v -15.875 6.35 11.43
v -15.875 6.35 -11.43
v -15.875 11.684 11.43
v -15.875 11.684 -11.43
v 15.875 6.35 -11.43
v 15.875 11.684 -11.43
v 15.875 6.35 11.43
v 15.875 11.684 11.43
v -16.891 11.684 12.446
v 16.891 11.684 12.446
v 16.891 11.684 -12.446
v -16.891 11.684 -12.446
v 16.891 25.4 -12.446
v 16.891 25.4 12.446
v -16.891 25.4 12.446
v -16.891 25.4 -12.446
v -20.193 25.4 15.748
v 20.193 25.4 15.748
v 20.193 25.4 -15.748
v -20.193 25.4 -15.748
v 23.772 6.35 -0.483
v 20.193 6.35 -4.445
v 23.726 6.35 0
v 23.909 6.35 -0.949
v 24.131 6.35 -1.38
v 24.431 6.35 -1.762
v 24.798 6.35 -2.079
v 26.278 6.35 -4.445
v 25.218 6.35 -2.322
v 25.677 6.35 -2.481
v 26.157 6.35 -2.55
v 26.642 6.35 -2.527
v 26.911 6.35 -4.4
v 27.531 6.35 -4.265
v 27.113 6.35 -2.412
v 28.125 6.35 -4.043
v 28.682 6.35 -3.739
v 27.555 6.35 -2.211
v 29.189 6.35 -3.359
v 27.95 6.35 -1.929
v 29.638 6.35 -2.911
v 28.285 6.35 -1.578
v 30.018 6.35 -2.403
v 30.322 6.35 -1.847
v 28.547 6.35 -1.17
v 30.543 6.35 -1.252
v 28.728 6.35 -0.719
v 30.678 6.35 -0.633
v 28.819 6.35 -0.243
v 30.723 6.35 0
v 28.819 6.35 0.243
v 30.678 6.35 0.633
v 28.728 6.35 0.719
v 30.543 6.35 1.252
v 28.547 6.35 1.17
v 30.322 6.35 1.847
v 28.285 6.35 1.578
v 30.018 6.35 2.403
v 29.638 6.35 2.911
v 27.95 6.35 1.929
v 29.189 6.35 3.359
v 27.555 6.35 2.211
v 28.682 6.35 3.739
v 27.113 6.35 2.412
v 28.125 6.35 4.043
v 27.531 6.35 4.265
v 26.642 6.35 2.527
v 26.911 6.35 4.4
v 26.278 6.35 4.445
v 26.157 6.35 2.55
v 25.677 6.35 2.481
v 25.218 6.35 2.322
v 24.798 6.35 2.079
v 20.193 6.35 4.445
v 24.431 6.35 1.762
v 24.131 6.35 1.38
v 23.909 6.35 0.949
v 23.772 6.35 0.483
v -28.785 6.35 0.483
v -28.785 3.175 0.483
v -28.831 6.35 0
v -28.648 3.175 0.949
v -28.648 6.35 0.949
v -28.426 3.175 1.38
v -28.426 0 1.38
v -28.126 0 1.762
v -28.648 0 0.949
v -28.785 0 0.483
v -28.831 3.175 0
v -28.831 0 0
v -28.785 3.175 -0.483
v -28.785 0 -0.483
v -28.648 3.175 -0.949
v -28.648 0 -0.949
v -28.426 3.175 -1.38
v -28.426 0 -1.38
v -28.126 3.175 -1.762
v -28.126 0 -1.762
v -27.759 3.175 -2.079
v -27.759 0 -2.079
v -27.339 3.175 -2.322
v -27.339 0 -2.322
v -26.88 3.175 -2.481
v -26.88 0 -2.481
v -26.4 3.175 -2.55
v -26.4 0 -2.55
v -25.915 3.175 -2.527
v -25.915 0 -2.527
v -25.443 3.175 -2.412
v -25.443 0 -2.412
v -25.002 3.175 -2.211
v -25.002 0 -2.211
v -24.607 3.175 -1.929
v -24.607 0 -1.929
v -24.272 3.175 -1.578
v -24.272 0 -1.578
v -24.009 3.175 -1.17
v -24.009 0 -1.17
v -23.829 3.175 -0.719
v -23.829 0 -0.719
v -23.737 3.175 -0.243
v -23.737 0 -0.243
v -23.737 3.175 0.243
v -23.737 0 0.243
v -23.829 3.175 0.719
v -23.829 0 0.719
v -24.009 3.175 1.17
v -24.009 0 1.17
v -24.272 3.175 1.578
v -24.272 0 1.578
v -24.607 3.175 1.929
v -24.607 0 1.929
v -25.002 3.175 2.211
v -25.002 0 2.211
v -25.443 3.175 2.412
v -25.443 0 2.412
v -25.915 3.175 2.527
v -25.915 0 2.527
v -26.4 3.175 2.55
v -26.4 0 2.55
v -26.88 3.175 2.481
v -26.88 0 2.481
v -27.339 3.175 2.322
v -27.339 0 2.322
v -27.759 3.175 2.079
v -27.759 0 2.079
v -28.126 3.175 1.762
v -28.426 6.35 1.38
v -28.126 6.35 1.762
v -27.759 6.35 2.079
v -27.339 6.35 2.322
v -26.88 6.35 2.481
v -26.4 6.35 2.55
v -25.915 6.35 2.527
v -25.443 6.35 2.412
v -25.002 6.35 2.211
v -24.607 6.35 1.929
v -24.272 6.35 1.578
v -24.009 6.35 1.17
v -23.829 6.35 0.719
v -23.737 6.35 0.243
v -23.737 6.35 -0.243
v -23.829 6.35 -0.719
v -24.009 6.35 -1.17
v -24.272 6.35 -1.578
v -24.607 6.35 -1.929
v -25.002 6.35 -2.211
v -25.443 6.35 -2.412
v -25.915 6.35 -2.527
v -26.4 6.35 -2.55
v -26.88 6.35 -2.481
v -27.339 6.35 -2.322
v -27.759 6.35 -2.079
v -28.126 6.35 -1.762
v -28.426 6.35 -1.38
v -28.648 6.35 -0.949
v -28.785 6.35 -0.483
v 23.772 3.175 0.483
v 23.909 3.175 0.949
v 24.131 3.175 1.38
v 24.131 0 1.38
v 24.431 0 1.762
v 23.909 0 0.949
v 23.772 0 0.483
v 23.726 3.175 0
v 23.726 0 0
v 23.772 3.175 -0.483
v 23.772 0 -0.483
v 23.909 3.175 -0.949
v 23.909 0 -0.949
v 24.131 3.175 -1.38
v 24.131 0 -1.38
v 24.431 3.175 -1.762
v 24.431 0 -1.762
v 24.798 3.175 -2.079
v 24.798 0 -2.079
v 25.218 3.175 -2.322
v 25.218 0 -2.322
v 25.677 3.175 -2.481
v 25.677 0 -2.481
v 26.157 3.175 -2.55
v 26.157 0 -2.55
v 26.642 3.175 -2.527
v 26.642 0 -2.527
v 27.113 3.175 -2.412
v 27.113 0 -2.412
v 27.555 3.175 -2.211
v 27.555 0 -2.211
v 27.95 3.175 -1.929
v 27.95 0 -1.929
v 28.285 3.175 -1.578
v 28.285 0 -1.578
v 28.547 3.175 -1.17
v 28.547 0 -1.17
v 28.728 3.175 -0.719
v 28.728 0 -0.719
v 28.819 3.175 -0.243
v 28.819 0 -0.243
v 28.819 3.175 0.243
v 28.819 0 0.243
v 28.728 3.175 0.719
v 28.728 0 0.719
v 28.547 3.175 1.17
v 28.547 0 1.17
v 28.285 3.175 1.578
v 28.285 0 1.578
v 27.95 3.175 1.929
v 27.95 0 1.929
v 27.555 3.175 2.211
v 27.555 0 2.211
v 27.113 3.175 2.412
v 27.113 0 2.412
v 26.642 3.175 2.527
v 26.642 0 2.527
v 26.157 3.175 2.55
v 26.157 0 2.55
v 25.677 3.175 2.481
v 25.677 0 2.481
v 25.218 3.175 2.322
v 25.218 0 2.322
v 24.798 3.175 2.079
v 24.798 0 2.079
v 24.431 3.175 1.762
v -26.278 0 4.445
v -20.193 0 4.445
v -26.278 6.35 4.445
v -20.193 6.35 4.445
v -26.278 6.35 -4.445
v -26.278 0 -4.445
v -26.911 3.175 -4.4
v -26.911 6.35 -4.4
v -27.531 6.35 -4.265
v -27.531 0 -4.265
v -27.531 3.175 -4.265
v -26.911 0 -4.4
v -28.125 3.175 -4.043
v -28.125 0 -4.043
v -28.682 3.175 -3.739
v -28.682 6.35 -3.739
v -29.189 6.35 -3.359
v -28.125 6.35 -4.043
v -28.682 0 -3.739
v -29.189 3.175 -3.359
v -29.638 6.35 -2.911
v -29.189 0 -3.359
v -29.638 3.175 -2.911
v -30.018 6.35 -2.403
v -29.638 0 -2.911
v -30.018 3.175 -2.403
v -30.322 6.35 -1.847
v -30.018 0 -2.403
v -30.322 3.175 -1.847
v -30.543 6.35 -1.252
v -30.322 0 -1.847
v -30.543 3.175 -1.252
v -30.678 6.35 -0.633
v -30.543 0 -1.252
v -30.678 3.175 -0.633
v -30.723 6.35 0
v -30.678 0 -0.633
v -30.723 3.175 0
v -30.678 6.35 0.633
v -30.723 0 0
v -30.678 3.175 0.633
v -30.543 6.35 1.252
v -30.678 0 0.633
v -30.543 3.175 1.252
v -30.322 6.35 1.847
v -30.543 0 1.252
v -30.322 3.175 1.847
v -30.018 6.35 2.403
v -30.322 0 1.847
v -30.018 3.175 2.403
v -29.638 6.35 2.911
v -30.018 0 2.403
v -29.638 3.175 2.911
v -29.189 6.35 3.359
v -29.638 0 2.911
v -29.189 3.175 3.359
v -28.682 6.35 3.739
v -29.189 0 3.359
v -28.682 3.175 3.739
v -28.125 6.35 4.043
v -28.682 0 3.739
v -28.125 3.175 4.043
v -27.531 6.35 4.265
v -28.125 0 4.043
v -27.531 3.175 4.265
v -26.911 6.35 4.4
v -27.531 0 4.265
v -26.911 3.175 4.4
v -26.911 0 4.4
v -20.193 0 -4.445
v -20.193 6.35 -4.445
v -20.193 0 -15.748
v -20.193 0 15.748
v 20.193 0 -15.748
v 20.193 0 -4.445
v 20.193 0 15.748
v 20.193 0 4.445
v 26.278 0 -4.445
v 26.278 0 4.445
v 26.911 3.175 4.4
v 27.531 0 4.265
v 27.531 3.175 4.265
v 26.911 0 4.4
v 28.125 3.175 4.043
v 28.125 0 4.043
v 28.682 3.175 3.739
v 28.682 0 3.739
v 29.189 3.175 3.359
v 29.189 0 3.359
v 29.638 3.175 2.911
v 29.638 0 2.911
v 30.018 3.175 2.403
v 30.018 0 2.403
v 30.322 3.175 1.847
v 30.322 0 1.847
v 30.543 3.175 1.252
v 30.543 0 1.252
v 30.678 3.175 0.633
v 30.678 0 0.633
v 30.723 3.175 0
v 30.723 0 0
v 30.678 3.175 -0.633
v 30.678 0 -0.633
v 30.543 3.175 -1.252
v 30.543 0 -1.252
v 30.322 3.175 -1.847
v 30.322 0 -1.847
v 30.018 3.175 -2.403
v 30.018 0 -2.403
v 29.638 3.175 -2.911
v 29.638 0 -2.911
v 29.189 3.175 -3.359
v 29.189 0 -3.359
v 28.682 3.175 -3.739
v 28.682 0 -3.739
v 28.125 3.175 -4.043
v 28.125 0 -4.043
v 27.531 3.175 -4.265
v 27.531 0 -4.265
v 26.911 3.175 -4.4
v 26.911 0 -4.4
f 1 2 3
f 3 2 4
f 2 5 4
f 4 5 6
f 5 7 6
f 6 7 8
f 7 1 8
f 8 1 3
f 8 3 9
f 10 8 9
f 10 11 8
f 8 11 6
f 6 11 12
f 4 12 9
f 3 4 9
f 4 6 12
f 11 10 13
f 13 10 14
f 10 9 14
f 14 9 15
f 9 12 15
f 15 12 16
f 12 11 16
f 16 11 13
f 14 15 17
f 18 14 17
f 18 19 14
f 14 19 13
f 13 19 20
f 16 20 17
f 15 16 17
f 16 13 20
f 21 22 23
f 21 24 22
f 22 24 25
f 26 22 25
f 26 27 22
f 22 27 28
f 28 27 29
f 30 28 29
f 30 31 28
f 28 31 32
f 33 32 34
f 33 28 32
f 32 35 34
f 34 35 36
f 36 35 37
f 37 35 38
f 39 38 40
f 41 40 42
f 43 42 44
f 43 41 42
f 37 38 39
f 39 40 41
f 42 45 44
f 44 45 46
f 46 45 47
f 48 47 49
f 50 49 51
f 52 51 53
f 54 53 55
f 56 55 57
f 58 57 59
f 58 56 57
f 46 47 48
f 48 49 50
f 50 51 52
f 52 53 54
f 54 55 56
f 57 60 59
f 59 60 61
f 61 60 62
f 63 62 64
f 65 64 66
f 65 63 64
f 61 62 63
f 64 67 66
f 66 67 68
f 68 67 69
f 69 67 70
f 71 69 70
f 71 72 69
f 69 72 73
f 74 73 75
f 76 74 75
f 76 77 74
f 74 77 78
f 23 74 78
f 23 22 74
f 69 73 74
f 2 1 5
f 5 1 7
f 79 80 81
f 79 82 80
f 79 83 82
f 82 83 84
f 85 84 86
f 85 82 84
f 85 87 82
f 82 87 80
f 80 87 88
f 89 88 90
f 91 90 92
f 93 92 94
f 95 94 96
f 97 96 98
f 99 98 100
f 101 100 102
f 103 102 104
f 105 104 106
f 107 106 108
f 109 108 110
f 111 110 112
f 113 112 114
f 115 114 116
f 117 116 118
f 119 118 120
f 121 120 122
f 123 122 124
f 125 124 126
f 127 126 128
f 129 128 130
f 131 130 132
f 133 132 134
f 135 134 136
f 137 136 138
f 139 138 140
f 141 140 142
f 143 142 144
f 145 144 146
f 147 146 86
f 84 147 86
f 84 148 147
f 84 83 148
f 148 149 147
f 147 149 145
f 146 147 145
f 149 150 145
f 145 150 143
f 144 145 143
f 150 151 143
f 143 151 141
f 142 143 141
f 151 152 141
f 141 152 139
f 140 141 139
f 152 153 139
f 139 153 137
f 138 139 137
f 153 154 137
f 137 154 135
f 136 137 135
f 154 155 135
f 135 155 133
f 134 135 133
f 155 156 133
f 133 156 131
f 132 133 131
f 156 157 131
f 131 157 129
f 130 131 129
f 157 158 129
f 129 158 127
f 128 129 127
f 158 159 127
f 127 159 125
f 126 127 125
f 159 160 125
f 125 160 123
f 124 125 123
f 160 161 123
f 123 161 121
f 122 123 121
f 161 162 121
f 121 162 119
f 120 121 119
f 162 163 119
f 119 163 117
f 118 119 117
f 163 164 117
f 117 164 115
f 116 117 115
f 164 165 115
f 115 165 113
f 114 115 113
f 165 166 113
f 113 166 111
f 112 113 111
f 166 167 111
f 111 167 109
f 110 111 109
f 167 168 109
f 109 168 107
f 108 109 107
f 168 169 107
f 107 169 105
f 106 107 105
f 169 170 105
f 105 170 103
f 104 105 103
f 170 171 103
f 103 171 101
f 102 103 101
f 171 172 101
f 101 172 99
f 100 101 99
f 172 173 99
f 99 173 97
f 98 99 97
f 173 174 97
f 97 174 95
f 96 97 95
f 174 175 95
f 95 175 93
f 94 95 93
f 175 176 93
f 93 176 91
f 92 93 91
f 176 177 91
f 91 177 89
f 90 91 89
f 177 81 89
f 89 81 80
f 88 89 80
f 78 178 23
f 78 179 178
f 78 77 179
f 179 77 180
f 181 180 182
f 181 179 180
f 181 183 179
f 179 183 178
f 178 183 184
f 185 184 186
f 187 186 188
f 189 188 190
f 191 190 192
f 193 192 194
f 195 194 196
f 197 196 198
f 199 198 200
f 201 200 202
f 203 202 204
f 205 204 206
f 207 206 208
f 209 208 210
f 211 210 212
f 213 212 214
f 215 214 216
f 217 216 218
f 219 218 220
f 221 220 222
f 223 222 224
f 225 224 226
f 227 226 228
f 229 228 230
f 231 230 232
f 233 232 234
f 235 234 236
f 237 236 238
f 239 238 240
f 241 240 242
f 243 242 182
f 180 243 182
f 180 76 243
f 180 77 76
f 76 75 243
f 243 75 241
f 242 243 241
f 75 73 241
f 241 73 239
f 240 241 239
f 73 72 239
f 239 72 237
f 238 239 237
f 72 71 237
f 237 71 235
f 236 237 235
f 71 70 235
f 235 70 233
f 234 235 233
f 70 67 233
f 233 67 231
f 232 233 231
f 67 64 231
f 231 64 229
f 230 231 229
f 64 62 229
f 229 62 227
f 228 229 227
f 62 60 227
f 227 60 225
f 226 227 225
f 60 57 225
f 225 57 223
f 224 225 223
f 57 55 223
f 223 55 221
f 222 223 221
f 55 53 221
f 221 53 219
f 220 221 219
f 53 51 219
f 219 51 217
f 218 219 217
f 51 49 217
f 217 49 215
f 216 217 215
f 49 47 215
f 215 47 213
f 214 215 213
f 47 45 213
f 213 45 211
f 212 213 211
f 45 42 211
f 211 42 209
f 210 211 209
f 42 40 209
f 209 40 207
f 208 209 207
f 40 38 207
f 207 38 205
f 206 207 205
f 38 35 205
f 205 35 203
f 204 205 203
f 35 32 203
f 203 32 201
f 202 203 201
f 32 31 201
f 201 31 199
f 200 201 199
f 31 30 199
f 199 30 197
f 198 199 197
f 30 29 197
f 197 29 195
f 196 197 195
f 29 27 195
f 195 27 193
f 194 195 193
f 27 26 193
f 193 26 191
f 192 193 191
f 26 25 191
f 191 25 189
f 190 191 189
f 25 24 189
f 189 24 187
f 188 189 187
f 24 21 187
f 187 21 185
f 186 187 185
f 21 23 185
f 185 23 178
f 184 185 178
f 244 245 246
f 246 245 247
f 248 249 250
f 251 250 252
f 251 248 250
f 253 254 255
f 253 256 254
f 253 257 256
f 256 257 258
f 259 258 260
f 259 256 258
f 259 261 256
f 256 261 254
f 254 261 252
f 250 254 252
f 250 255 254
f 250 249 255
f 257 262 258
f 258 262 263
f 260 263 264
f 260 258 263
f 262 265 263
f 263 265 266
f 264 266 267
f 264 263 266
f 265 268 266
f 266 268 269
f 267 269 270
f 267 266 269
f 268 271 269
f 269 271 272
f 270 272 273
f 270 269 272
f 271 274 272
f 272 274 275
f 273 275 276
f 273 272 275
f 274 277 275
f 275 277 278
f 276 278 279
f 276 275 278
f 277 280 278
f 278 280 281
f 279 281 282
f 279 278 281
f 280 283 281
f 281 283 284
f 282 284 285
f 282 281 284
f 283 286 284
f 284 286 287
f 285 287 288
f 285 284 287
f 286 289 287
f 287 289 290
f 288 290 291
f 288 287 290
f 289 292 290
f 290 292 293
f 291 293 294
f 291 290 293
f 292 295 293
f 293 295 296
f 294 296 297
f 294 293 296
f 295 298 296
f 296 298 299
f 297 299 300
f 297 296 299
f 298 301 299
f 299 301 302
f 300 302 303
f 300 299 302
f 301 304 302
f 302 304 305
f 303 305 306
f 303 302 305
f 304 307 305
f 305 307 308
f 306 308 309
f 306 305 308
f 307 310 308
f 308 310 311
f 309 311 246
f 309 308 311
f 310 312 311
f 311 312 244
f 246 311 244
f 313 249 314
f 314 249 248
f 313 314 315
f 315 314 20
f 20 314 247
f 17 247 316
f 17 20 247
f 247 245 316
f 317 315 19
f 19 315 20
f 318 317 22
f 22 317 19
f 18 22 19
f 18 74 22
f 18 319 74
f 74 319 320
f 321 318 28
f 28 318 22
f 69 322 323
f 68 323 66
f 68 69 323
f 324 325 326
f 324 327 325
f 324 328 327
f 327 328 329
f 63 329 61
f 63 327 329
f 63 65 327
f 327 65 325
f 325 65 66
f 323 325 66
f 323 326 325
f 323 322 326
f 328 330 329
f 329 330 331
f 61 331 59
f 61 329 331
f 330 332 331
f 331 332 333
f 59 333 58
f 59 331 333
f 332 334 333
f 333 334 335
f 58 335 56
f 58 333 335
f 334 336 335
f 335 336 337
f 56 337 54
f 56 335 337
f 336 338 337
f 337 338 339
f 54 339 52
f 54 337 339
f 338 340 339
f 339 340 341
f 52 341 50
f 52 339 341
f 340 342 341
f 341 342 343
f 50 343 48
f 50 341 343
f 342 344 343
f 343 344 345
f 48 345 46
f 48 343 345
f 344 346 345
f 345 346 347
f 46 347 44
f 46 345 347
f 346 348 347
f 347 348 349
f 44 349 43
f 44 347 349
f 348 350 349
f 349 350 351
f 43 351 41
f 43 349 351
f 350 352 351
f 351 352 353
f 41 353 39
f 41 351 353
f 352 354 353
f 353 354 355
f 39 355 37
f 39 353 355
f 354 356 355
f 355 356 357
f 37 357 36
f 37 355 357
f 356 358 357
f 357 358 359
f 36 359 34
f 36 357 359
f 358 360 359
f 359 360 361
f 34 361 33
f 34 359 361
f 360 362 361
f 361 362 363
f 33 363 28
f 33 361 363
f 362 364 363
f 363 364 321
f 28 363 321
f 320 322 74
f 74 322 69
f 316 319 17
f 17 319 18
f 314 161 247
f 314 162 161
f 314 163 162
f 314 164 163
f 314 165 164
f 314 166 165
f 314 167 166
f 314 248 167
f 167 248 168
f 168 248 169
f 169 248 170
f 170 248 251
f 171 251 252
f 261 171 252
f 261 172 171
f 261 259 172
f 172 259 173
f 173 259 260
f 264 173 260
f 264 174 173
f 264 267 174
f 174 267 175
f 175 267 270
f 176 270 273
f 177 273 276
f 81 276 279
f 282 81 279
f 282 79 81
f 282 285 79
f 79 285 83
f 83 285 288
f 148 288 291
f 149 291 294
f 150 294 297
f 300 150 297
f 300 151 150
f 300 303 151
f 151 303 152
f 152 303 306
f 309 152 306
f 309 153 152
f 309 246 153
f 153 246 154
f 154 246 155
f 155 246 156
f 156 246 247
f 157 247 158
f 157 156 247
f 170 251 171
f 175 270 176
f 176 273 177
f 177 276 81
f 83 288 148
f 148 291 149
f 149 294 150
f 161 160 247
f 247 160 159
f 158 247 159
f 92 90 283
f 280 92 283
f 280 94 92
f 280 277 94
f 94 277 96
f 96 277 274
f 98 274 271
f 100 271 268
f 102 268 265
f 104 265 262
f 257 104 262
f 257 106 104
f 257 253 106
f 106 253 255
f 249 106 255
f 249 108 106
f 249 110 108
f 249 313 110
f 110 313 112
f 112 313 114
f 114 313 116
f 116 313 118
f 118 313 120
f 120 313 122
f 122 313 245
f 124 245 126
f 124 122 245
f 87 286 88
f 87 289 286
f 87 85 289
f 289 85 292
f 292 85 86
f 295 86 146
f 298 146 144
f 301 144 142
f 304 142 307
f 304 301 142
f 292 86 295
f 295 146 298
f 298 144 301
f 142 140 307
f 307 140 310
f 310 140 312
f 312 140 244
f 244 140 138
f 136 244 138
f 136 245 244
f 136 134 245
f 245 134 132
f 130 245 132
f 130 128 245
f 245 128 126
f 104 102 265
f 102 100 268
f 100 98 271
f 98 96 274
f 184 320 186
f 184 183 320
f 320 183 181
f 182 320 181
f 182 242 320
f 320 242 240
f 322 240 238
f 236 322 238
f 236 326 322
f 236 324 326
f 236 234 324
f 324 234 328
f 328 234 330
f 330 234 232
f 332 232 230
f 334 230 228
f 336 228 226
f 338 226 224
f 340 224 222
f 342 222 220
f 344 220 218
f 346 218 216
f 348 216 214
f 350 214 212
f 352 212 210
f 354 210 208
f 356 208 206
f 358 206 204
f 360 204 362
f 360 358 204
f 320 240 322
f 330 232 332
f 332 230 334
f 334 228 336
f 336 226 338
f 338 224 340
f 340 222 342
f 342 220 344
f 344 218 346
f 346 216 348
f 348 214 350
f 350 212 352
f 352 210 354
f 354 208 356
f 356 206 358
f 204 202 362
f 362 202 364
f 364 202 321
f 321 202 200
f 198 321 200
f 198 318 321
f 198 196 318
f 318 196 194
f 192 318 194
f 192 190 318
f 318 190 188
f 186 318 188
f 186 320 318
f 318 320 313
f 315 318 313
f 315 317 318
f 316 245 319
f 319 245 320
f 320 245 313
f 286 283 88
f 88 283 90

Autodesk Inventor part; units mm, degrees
ref_plane "YZ Plane" through (0, 0, 0) normal (1, 0, 0) x (0, 1, 0)
ref_plane "XZ Plane" through (0, 0, 0) normal (0, 1, 0) x (-1, 0, 0)
ref_plane "XY Plane" through (0, 0, 0) normal (0, 0, 1) x (1, 0, 0)
sketch "Sketch1" plane through (0, 0, 0) normal (0, 1, 0) x (-1, 0, 0)
  line L0 (20.193, 15.748) -> (-20.193, 15.748)
  line L1 (-20.193, -15.748) -> (20.193, -15.748)
  line L2 (20.193, 15.748) -> (-20.193, -15.748) construction
  line L3 (-20.193, 15.748) -> (20.193, -15.748) construction
  line L4 (26.2784, 0) -> (13.1572, 0) construction
  line L5 (26.2784, 4.445) -> (20.193, 4.445)
  line L6 (20.193, -4.445) -> (26.2784, -4.445)
  arc A0 (26.2784, -4.445) -> (26.2784, 4.445) centre (26.2784, 0) ccw
  line L7 (0, -15.748) -> (0, 15.748) construction
  line L8 (-26.2784, 4.445) -> (-20.193, 4.445)
  line L9 (-20.193, -4.445) -> (-26.2784, -4.445)
  arc A1 (-26.2784, 4.445) -> (-26.2784, -4.445) centre (-26.2784, 0) ccw
  line L10 (20.193, -15.748) -> (20.193, -4.445)
  line L11 (20.193, 4.445) -> (20.193, 15.748)
  line L12 (-20.193, 15.748) -> (-20.193, 4.445)
  line L13 (-20.193, -4.445) -> (-20.193, -15.748)
  circle A2 centre (-26.2784, 0) radius 2.5527
  circle A3 centre (26.2784, 0) radius 2.5527
  point P0 (0, 0)
  point P1 (19.7178, 0)
  dimension "d0" = 40.386
  dimension "d1" = 31.496
  dimension "d2" = 8.89
  dimension "d5" = 5.1054
  dimension "d6" = 5.1054
extrude "Extrusion2" add sketch "Sketch1" along normal blind 6.35
sketch "Sketch2" plane through (0, 6.35, 0) normal (0, 1, 0) x (1, 0, 0)
  line L0 (20.193, 15.748) -> (-20.193, 15.748) projected
  line L1 (-20.193, 15.748) -> (20.193, 15.748)
  line L2 (20.193, 15.748) -> (20.193, -15.748)
  line L3 (20.193, -15.748) -> (-20.193, -15.748)
  line L4 (-20.193, -15.748) -> (-20.193, 15.748)
  line L5 (-16.891, -12.446) -> (16.891, -12.446)
  line L6 (16.891, -12.446) -> (16.891, 12.446)
  line L7 (16.891, 12.446) -> (-16.891, 12.446)
  line L8 (-16.891, 12.446) -> (-16.891, -12.446)
  line L9 (-16.891, -12.446) -> (16.891, 12.446) construction
  line L10 (16.891, -12.446) -> (-16.891, 12.446) construction
  point P0 (0, 0)
  dimension "d9" = 3.302
  dimension "d10" = 3.302
extrude "Extrusion3" add sketch "Sketch2" along normal blind 19.05
sketch "Sketch3" plane through (0, 6.35, 0) normal (0, 1, 0) x (1, 0, 0)
  line L0 (-16.891, 12.446) -> (-16.891, -12.446) projected
  line L1 (-16.891, -12.446) -> (16.891, -12.446) projected
  line L2 (16.891, 12.446) -> (-16.891, 12.446) projected
  line L3 (-16.891, 12.446) -> (16.891, 12.446)
  line L4 (16.891, 12.446) -> (16.891, -12.446)
  line L5 (16.891, -12.446) -> (-16.891, -12.446)
  line L6 (-16.891, -12.446) -> (-16.891, 12.446)
  line L7 (-15.875, -11.43) -> (15.875, -11.43)
  line L8 (15.875, -11.43) -> (15.875, 11.43)
  line L9 (15.875, 11.43) -> (-15.875, 11.43)
  line L10 (-15.875, 11.43) -> (-15.875, -11.43)
  line L11 (-15.875, -11.43) -> (15.875, 11.43) construction
  line L12 (15.875, -11.43) -> (-15.875, 11.43) construction
  point P0 (0, 0)
  dimension "d13" = 1.016
  dimension "d14" = 1.016
extrude "Extrusion4" add sketch "Sketch3" along normal blind 5.334
equation "\"d0\" = 2 * imuBoxWallThickness + imuBoardLength + 2 * imuPrintError"
equation "\"d1\" = 2 * imuBoxWallThickness + imuBoardWidth + 2 * imuPrintError"
equation "\"d2\" = widthSlot"
equation "\"d7\" = imuBoxBottom"
equation "\"d9\" = imuBoxWallThickness - imuPrintError"
equation "\"d10\" = imuBoxWallThickness - imuPrintError"
equation "\"d11\" = imuBoxHeight"
equation "\"d15\" = imuBoardBottomThickness"
equation "\"imuBoardWidth\" = 22.86"
equation "\"imuBoardLength\" = 31.75"
equation "\"imuBoardTopThickness\" = 11.176"
equation "\"imuBoardBottomThickness\" = 5.334"
equation "\"imuBoardHoleDistance\" = 19.7104"
equation "\"imuBoxWallThickness\" = 3.81"
equation "\"widthSlot\" = 8.89"
equation "\"imuBoxBottom\" = 6.35"
equation "\"imuBoxHeight\" = 19.05"
equation "\"imuPrintError\" = 0.508"
properties part number "imuBox"
